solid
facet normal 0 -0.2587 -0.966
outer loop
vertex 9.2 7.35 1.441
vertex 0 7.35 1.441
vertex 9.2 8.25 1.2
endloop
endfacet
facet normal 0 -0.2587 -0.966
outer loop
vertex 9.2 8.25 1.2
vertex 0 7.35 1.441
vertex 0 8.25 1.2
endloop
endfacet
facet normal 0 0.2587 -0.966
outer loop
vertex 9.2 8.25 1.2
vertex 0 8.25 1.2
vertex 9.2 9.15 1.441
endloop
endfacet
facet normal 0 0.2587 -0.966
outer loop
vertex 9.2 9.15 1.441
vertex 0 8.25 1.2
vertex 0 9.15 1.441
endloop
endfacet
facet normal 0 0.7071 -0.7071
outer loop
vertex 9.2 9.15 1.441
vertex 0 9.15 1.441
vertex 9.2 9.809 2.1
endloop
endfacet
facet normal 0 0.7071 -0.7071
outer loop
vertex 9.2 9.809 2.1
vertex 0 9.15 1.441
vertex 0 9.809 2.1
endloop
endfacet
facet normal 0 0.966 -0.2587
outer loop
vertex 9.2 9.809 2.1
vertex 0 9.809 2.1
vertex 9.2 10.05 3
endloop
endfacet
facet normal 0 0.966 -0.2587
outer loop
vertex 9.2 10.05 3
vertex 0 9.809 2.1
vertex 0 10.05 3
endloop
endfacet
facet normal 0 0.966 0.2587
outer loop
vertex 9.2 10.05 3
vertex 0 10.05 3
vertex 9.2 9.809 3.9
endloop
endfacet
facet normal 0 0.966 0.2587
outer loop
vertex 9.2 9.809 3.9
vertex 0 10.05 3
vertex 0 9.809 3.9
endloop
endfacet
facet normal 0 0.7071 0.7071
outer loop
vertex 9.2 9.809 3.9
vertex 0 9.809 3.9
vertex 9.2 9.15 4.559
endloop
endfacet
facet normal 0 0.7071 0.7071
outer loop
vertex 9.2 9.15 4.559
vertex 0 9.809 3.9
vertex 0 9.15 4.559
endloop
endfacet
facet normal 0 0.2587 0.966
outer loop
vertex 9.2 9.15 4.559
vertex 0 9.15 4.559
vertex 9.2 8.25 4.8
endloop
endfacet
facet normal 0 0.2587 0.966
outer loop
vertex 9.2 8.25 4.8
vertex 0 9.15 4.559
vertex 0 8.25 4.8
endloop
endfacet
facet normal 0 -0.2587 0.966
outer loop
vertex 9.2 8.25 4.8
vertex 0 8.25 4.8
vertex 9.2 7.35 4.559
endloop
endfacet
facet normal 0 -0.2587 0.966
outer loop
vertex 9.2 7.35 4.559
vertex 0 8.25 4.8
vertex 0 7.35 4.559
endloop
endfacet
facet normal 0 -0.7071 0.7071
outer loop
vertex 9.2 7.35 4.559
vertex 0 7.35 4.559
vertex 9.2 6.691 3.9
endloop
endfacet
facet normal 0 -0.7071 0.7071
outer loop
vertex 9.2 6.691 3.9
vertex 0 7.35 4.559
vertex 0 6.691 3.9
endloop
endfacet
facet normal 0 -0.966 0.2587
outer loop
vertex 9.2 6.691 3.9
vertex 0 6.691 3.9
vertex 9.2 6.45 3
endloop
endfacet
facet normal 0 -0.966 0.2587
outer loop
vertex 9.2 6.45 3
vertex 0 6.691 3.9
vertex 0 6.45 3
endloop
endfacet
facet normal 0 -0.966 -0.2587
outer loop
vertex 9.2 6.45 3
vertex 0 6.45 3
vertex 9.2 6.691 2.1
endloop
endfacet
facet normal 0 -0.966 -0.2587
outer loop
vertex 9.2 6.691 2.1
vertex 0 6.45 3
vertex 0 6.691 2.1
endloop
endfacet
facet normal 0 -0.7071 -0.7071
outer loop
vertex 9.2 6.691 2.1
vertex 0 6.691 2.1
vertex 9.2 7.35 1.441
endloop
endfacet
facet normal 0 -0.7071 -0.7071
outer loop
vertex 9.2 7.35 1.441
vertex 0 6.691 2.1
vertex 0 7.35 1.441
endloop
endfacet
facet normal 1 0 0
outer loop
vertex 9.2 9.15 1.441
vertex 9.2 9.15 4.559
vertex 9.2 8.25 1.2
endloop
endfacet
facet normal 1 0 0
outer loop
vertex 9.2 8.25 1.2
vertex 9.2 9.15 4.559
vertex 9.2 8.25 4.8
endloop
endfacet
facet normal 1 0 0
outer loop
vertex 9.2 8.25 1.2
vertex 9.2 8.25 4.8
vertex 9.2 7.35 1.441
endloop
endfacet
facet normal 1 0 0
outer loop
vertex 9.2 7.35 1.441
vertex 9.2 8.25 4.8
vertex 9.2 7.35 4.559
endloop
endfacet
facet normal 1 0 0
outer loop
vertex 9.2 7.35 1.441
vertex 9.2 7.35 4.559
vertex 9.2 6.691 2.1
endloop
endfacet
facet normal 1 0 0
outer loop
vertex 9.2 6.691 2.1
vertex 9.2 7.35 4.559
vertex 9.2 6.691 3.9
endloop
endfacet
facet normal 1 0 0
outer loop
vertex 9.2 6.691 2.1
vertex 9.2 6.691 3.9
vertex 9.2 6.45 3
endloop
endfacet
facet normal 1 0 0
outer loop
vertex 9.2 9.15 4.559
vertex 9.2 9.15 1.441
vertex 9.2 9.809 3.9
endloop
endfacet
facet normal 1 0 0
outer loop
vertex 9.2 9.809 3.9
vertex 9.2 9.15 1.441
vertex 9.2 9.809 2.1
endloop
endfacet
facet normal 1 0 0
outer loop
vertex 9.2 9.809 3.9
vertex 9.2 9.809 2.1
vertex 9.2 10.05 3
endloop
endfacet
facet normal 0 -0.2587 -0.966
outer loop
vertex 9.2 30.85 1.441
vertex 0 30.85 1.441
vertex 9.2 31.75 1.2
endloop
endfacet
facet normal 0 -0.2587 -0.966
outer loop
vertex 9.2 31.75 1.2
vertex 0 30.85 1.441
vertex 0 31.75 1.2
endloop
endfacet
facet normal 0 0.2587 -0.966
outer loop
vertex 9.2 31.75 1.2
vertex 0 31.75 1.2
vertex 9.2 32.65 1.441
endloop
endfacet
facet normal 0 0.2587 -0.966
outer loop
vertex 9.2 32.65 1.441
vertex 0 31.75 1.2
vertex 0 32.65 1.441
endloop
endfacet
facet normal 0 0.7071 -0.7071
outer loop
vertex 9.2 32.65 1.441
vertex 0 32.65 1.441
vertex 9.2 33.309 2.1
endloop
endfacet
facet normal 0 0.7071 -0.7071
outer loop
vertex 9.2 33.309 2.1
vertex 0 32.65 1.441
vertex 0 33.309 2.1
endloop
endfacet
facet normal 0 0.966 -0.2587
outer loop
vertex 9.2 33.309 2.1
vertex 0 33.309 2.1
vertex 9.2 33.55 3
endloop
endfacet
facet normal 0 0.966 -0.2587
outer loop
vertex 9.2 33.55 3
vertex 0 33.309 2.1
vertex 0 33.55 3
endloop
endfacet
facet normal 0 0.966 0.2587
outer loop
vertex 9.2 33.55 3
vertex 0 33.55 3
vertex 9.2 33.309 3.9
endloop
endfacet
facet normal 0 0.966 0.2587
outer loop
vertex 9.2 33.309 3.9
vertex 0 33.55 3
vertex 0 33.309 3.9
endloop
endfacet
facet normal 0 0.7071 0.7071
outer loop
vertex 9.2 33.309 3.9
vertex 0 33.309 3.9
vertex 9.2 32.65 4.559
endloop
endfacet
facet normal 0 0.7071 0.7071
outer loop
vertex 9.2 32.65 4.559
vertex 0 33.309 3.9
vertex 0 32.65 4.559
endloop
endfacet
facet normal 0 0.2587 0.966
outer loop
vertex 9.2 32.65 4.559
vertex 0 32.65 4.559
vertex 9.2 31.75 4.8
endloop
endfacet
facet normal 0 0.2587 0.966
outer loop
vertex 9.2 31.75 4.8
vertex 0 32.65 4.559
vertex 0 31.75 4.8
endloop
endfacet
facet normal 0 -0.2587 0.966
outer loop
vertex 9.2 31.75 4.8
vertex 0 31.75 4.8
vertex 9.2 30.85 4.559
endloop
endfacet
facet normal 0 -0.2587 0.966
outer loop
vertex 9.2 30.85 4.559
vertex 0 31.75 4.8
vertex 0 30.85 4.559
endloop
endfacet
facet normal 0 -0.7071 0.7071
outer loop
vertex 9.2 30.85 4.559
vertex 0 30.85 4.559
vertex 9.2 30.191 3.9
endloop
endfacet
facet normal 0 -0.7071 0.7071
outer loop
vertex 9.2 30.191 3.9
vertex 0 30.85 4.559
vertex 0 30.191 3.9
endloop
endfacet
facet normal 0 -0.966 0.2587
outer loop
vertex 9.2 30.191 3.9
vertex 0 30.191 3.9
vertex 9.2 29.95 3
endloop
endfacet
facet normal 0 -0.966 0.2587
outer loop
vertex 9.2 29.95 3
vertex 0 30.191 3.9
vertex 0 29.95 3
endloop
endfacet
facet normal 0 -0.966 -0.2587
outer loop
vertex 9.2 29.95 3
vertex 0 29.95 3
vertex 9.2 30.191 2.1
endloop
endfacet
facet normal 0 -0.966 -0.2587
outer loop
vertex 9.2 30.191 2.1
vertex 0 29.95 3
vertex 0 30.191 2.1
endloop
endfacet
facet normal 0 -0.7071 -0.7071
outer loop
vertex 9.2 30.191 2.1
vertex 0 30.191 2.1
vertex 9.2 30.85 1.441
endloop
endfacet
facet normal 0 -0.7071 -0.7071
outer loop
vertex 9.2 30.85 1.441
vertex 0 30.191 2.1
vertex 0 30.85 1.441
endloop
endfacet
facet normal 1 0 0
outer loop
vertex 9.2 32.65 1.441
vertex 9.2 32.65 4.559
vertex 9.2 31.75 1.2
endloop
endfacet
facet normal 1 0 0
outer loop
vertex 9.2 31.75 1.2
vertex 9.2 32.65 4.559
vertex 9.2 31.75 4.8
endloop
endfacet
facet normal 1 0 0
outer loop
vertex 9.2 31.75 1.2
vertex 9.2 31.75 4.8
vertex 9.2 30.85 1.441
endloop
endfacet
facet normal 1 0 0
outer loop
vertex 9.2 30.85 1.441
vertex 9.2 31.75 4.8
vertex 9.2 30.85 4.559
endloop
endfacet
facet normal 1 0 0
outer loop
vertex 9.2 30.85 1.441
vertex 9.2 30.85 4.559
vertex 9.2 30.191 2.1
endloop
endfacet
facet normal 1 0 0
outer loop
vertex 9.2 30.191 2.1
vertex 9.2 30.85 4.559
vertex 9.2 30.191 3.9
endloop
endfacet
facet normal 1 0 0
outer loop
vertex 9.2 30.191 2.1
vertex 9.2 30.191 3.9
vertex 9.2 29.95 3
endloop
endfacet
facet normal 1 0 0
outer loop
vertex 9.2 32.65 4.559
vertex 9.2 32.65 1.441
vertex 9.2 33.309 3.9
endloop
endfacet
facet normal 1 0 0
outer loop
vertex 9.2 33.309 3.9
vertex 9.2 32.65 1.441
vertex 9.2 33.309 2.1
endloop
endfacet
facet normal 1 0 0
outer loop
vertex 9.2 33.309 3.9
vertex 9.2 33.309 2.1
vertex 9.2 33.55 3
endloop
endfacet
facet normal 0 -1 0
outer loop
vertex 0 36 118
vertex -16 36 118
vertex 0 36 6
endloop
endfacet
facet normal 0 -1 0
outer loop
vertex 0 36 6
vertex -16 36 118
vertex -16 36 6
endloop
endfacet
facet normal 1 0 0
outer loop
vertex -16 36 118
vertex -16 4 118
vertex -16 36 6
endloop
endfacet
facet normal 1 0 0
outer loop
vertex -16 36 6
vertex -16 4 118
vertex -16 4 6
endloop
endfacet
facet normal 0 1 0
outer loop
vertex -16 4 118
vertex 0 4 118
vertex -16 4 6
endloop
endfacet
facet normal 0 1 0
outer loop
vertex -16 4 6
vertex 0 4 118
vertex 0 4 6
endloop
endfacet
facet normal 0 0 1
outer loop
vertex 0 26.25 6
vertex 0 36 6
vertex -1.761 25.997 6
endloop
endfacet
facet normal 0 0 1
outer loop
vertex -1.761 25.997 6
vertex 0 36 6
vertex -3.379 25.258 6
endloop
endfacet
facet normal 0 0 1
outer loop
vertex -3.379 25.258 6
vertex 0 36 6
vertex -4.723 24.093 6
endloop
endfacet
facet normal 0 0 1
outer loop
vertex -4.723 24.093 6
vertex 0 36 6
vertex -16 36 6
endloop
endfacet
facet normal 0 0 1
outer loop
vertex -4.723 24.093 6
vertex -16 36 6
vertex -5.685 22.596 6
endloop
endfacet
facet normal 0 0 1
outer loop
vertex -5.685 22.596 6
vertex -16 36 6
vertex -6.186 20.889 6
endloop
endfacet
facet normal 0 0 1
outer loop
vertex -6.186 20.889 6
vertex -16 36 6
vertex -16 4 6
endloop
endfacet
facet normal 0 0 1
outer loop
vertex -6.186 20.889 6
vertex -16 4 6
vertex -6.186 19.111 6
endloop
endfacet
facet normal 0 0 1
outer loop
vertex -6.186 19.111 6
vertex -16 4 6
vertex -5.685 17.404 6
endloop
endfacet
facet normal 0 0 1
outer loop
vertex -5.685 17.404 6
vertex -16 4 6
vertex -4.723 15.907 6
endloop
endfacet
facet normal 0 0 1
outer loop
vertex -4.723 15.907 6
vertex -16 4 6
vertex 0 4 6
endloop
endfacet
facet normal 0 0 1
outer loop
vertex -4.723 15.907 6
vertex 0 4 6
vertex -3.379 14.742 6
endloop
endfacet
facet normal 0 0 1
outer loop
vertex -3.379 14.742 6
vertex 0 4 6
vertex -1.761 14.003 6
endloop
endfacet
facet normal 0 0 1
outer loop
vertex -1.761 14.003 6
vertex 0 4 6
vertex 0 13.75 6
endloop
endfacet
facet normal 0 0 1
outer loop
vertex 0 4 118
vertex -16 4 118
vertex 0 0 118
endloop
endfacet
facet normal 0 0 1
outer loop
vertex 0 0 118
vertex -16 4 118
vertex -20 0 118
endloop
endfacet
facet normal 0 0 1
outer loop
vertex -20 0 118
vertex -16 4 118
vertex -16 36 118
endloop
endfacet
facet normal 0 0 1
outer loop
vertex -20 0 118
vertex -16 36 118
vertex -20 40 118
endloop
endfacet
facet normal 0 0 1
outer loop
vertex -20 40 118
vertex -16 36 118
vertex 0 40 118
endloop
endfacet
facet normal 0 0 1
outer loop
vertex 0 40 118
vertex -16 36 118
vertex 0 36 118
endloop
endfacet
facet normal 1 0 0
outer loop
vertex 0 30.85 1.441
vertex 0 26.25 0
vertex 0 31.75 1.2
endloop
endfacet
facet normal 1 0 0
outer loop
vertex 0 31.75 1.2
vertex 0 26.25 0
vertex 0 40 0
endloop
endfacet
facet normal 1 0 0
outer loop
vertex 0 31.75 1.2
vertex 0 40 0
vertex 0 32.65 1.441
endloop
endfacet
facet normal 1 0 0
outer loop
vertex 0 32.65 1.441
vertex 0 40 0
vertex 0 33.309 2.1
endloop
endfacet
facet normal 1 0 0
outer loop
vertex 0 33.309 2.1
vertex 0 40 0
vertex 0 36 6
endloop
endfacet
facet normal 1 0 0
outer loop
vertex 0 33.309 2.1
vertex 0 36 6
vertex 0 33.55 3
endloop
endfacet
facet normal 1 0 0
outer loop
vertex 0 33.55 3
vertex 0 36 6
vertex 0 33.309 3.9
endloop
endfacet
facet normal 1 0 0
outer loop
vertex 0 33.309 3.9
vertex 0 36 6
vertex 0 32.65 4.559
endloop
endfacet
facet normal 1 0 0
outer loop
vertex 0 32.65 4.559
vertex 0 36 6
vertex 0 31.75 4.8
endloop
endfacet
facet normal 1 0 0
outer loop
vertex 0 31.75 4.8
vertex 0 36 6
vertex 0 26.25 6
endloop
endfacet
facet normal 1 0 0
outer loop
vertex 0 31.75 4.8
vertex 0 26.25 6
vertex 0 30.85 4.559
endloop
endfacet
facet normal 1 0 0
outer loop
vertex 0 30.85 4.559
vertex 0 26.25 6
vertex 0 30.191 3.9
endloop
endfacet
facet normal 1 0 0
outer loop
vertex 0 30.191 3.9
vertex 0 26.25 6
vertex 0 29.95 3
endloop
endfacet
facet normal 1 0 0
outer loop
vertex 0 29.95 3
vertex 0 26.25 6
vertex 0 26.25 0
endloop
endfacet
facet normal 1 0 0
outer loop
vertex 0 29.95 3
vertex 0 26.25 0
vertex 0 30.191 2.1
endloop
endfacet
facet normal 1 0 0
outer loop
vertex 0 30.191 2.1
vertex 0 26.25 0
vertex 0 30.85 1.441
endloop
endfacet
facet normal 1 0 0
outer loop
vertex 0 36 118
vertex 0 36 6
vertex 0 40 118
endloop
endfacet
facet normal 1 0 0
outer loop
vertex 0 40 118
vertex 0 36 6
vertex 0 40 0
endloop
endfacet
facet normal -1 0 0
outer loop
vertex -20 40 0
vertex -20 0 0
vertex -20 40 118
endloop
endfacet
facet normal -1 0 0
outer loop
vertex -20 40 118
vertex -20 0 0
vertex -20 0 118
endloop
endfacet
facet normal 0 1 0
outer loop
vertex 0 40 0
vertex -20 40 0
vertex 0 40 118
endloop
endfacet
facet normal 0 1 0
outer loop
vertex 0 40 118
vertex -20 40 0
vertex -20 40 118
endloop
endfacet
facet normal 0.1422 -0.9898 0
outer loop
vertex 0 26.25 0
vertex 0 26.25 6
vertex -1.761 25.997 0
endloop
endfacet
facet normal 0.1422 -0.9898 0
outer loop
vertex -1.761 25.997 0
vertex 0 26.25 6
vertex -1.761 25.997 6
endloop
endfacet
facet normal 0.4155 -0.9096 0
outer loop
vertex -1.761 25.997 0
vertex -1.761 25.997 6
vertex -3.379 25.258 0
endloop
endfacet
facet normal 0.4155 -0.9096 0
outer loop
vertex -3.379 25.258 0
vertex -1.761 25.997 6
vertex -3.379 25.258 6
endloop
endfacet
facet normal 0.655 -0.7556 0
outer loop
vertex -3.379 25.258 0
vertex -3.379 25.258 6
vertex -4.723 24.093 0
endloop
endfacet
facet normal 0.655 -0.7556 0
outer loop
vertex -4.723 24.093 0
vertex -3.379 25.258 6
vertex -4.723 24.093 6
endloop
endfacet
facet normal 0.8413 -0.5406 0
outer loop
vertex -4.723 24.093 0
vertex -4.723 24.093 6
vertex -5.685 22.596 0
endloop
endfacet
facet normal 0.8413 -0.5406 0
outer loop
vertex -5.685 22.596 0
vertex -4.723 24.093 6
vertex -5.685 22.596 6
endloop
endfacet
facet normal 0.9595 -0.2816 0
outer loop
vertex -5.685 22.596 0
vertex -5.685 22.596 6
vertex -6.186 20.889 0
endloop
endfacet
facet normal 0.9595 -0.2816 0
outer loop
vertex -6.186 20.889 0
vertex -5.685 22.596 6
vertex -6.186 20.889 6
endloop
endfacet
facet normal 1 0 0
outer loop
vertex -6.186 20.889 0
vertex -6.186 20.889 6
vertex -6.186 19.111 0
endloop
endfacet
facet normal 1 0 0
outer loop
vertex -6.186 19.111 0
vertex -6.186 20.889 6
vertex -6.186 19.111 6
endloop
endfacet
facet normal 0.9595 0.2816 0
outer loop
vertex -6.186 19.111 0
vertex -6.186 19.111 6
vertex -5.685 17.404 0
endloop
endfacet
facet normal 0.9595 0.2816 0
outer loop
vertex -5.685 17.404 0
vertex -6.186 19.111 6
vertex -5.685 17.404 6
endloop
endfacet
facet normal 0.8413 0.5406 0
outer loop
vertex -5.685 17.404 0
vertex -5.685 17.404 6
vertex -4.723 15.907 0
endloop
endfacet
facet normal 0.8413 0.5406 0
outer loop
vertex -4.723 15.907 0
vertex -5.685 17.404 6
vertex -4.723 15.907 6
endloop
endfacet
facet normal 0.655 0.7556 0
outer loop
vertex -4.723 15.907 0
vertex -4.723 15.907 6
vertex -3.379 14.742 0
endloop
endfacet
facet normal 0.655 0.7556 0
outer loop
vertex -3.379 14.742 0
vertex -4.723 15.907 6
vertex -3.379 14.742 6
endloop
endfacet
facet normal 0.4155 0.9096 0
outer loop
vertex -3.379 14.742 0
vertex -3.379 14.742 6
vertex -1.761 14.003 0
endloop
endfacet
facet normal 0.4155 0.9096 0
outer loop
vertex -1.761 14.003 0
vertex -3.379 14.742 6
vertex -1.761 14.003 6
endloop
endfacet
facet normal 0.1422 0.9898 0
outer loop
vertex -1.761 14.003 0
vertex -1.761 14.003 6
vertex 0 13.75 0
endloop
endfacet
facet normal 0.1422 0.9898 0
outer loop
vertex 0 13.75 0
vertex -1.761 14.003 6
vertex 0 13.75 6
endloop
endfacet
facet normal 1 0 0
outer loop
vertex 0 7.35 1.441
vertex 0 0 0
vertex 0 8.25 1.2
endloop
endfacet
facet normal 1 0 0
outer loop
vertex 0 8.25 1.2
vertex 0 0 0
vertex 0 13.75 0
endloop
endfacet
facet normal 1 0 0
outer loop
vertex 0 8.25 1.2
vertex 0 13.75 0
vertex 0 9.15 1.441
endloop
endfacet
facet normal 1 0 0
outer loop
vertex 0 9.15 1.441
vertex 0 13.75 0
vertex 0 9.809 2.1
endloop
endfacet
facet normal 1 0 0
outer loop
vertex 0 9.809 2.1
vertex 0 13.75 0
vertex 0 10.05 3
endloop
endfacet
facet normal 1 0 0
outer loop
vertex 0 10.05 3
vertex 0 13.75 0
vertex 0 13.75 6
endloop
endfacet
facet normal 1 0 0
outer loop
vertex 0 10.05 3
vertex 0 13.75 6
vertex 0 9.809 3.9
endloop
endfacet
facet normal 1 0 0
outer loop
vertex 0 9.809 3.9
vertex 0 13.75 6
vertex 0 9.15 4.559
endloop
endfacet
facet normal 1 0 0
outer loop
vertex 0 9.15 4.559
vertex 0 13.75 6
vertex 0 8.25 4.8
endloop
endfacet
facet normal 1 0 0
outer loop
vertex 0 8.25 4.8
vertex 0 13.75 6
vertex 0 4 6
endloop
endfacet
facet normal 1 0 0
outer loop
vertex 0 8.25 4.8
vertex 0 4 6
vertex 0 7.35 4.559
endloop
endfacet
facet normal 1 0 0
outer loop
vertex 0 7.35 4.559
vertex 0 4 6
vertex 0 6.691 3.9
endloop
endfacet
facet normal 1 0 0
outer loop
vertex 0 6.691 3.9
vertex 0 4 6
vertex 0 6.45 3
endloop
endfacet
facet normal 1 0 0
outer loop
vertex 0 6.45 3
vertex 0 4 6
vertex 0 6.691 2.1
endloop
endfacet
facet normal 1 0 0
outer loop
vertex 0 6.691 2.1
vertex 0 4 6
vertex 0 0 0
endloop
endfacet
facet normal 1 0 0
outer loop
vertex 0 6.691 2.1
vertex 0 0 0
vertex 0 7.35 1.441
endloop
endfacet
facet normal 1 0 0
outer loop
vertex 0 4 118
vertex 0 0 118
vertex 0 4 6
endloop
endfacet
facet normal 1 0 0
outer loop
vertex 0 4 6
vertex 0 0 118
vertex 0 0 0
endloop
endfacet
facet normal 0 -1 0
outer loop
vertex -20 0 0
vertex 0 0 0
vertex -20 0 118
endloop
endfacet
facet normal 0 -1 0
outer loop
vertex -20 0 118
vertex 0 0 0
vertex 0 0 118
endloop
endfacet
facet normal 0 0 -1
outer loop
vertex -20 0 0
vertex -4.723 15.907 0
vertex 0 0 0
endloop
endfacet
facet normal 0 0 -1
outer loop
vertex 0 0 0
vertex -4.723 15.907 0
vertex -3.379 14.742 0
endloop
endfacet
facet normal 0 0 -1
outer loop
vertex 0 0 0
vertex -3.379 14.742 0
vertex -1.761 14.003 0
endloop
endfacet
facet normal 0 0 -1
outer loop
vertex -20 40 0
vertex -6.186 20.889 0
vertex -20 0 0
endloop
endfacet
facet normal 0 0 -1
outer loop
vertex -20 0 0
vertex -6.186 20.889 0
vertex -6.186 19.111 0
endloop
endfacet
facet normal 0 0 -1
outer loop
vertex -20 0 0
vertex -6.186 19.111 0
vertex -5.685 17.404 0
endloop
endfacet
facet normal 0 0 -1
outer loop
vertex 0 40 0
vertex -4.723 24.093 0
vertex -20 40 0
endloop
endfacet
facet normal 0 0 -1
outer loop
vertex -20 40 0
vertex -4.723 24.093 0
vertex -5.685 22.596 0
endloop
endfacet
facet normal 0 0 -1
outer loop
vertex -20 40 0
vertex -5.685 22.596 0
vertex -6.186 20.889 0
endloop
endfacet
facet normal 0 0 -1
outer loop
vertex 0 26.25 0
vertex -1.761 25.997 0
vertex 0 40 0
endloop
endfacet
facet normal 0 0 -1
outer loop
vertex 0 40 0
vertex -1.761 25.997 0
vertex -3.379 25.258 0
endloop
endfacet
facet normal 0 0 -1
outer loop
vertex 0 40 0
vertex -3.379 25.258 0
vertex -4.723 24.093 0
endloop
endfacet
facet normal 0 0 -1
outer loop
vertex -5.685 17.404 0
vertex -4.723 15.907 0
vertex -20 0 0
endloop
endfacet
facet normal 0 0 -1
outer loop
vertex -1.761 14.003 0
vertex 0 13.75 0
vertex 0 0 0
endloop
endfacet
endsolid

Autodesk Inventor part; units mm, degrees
ref_plane "YZ Plane" through (0, 0, 0) normal (1, 0, 0) x (0, 1, 0)
ref_plane "XZ Plane" through (0, 0, 0) normal (0, 1, 0) x (-1, 0, 0)
ref_plane "XY Plane" through (0, 0, 0) normal (0, 0, 1) x (1, 0, 0)
sketch "스케치1" plane through (0, 0, 0) normal (0, 0, 1) x (1, 0, 0)
  line L0 (-20, 40) -> (0, 40)
  line L1 (0, 40) -> (0, 0)
  line L2 (0, 0) -> (-20, 0)
  line L3 (-20, 0) -> (-20, 40)
  circle A0 centre (0, 20) radius 6.25
  line L4 (0, -8) -> (0, 48) projected
  point P0 (0, 13.75)
  point P1 (0, 26.25)
  dimension "d0" = 20
  dimension "d1" = 40
  dimension "d2" = 12.5
  dimension "d3" = 20
extrude "돌출1" add sketch "스케치1" along normal blind 118 contours L0 L1 A0 L2 L3
sketch "스케치2" plane through (0, 0, 118) normal (0, 0, 1) x (1, 0, 0)
  line L0 (0, 40) -> (-20, 40) projected
  line L1 (0, 26.25) -> (0, 40) projected
  arc A0 (0, 26.25) -> (0, 13.75) centre (0, 20) ccw projected
  line L2 (0, 0) -> (0, 13.75) projected
  line L3 (-20, 0) -> (0, 0) projected
  line L4 (0, 36) -> (-16, 36)
  line L5 (-16, 36) -> (-16, 4)
  line L6 (-16, 4) -> (0, 4)
  dimension "d6" = 16
  dimension "d7" = 32
  dimension "d8" = 4
extrude "돌출2" cut sketch "스케치2" against normal blind 112
sketch "스케치4" plane through (0, 26.25, 0) normal (1, 0, 0) x (0, 0, -1)
  circle A0 centre (-3, 5.5) radius 1.8
  circle A1 centre (-3, -18) radius 1.8
  line L0 (0, -26.25) -> (0, -12.5) projected
  line L1 (0, -12.5) -> (-6, -12.5) projected
  line L2 (0, 0) -> (-6, 0) projected
  line L3 (0, 0) -> (0, 13.75) projected
  dimension "d19" = 3.6
  dimension "d20" = 3.6
  dimension "d21" = 3
  dimension "d22" = 5.5
  dimension "d23" = 5.5
  dimension "d24" = 3
extrude "돌출4" add sketch "스케치4" along normal blind 9.2
properties part number "hard_support_m"
